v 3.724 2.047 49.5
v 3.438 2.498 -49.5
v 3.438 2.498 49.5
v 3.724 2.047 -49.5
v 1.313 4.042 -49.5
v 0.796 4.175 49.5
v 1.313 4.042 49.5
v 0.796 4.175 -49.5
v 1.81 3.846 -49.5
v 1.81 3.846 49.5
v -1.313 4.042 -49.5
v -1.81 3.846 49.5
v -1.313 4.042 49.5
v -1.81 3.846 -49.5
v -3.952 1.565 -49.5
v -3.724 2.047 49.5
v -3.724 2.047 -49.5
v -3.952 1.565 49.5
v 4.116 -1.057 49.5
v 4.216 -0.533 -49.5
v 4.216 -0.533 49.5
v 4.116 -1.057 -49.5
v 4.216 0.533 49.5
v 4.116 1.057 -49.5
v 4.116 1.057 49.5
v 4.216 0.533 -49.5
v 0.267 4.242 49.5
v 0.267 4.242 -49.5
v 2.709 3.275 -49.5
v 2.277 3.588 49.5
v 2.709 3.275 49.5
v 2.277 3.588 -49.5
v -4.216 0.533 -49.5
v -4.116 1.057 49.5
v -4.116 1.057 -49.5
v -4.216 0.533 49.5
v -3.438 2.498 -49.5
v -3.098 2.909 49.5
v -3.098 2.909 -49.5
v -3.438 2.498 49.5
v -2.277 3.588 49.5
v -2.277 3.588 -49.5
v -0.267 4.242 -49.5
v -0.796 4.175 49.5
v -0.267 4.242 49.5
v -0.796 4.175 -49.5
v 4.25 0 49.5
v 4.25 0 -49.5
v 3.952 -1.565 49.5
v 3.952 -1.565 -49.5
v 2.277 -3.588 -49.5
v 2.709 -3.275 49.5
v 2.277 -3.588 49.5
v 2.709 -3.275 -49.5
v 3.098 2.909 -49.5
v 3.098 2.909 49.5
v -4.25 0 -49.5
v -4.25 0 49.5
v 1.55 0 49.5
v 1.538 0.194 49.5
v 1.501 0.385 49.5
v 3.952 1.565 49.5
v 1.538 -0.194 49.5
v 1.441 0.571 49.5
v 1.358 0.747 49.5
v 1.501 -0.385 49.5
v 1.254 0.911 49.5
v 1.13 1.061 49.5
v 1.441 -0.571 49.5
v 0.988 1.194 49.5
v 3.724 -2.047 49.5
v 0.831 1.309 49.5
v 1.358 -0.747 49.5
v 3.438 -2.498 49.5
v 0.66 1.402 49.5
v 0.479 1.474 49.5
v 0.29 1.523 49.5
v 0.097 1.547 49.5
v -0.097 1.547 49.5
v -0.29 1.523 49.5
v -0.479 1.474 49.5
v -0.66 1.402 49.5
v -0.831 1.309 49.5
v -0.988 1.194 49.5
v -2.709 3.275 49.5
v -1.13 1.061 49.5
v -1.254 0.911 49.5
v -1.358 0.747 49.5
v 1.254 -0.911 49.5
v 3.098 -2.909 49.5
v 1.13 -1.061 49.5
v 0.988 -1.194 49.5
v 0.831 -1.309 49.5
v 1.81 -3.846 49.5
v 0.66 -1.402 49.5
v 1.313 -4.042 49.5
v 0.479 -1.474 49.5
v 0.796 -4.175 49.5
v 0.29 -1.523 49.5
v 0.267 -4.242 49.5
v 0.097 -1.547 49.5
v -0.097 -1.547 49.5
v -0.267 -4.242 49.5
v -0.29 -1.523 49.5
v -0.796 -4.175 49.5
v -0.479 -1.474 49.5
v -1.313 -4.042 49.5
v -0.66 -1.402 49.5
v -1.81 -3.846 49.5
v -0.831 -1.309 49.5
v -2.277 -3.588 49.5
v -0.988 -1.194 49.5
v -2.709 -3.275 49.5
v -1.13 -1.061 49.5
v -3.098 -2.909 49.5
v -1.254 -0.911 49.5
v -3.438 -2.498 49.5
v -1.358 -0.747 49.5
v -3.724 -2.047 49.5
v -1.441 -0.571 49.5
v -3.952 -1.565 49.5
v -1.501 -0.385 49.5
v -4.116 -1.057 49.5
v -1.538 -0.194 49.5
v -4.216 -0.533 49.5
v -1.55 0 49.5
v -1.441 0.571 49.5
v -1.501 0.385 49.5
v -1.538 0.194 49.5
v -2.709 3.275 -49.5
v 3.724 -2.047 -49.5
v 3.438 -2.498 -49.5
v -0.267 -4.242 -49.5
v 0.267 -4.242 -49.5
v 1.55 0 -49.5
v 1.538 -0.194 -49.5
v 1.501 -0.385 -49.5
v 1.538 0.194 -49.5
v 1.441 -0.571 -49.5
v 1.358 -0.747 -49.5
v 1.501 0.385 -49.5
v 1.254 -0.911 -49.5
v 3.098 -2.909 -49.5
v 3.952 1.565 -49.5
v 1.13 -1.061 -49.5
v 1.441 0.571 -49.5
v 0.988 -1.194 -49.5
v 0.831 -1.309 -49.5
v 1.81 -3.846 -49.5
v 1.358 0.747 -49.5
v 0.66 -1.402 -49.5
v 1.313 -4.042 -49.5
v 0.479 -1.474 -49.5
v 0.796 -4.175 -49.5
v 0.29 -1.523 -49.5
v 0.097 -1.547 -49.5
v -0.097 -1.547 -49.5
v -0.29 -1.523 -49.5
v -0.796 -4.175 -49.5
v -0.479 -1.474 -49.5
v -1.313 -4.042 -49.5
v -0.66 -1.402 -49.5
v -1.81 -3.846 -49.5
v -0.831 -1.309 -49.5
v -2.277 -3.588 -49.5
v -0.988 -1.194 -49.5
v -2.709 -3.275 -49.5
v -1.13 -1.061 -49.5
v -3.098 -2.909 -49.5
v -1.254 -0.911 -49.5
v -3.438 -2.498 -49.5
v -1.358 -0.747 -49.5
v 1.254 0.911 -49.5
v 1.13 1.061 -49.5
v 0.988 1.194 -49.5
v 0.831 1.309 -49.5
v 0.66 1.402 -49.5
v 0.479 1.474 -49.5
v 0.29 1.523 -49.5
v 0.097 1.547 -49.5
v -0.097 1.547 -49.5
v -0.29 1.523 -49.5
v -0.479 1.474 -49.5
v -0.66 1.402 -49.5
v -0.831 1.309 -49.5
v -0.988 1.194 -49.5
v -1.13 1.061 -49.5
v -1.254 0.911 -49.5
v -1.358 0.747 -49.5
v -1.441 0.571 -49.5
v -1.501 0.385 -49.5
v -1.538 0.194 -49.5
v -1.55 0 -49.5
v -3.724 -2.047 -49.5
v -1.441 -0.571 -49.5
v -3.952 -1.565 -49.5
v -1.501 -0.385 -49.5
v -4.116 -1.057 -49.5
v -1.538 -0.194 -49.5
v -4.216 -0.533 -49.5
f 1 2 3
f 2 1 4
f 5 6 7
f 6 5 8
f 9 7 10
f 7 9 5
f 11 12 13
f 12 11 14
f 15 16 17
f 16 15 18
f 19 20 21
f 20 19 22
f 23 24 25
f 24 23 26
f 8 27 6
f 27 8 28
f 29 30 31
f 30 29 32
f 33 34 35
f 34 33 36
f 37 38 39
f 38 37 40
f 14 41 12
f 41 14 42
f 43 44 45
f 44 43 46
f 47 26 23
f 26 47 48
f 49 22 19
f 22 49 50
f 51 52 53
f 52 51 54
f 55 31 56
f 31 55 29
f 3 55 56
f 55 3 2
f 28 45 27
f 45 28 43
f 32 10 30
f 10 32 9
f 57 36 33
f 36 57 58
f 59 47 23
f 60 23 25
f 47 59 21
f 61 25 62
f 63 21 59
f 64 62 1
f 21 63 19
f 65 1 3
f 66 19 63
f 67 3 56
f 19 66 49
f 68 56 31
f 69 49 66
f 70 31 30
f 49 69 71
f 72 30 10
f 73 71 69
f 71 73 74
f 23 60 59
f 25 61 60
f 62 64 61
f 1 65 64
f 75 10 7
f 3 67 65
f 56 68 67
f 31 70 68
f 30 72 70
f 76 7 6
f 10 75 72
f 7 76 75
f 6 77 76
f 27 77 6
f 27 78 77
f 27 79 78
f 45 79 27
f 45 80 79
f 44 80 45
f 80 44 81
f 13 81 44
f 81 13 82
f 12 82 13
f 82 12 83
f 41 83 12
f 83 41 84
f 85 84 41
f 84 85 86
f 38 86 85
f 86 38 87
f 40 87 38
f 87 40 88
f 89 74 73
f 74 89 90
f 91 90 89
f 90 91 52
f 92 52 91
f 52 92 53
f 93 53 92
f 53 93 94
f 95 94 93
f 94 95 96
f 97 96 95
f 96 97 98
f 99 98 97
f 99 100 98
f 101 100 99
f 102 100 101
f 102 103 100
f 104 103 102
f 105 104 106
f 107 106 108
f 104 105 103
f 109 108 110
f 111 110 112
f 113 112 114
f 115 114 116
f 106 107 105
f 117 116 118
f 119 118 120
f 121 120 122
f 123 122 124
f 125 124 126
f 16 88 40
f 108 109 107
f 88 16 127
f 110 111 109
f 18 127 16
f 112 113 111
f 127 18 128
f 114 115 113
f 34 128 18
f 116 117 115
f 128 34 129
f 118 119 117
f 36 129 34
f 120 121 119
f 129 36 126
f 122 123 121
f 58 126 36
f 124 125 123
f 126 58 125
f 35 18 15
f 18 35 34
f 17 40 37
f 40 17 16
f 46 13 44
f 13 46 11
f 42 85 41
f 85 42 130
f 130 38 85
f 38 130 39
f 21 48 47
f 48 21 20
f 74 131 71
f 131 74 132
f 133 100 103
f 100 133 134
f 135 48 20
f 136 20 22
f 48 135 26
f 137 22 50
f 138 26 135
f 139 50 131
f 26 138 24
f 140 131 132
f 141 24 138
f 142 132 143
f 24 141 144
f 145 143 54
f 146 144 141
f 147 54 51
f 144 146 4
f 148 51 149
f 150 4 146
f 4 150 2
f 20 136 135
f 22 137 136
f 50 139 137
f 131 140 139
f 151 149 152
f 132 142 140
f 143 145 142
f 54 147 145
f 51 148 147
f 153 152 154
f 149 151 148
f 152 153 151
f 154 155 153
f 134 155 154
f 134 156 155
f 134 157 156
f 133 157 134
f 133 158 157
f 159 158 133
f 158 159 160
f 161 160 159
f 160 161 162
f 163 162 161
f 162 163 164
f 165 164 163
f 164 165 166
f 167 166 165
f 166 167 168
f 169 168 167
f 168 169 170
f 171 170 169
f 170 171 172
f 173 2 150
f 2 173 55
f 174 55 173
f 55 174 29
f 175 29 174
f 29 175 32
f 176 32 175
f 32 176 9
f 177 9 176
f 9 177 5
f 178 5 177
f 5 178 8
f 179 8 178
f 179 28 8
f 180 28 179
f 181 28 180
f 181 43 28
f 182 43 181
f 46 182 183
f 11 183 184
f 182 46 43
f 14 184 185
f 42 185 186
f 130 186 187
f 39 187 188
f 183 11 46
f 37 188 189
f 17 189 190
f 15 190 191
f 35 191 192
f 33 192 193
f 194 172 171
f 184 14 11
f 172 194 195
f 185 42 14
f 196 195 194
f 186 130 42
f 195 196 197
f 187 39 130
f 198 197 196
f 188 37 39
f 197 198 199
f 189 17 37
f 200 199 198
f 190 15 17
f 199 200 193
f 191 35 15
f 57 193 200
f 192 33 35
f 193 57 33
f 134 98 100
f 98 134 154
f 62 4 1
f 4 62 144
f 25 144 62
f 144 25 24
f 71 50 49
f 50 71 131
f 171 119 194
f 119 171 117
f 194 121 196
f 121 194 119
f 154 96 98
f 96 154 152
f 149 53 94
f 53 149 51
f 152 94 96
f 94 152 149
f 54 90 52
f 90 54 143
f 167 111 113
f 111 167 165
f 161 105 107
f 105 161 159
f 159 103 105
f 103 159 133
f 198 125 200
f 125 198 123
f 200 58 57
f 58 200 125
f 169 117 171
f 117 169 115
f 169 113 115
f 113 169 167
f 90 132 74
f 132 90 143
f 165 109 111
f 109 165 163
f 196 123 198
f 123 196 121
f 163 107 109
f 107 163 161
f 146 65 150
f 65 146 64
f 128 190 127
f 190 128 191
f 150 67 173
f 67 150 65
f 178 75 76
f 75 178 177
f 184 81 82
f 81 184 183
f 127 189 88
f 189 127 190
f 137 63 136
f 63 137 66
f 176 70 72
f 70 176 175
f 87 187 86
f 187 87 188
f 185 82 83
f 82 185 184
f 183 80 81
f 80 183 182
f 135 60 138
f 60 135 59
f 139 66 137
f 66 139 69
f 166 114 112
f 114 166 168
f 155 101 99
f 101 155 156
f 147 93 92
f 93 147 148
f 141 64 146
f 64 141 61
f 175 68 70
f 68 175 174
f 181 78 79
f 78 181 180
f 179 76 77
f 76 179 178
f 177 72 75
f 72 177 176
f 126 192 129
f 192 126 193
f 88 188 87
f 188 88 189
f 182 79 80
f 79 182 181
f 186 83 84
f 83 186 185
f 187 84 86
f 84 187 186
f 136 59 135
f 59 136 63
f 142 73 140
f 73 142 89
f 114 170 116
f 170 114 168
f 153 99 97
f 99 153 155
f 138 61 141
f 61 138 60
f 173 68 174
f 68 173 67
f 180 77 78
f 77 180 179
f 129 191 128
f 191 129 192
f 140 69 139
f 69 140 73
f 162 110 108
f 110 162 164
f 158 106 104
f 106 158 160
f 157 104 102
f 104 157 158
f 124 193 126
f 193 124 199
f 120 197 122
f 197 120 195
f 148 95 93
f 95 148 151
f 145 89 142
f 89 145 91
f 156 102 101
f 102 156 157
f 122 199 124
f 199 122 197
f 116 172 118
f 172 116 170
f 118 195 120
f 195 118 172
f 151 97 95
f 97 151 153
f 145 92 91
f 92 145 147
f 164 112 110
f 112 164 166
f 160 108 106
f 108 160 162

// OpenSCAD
$fn = 50;


difference() {
	union() {
		translate(v = [0, 0, -49.5000000000]) {
			cylinder(h = 99, r = 4.2500000000);
		}
	}
	union() {
		translate(v = [0, 0, -100.0000000000]) {
			cylinder(h = 200, r = 1.5500000000);
		}
	}
}
